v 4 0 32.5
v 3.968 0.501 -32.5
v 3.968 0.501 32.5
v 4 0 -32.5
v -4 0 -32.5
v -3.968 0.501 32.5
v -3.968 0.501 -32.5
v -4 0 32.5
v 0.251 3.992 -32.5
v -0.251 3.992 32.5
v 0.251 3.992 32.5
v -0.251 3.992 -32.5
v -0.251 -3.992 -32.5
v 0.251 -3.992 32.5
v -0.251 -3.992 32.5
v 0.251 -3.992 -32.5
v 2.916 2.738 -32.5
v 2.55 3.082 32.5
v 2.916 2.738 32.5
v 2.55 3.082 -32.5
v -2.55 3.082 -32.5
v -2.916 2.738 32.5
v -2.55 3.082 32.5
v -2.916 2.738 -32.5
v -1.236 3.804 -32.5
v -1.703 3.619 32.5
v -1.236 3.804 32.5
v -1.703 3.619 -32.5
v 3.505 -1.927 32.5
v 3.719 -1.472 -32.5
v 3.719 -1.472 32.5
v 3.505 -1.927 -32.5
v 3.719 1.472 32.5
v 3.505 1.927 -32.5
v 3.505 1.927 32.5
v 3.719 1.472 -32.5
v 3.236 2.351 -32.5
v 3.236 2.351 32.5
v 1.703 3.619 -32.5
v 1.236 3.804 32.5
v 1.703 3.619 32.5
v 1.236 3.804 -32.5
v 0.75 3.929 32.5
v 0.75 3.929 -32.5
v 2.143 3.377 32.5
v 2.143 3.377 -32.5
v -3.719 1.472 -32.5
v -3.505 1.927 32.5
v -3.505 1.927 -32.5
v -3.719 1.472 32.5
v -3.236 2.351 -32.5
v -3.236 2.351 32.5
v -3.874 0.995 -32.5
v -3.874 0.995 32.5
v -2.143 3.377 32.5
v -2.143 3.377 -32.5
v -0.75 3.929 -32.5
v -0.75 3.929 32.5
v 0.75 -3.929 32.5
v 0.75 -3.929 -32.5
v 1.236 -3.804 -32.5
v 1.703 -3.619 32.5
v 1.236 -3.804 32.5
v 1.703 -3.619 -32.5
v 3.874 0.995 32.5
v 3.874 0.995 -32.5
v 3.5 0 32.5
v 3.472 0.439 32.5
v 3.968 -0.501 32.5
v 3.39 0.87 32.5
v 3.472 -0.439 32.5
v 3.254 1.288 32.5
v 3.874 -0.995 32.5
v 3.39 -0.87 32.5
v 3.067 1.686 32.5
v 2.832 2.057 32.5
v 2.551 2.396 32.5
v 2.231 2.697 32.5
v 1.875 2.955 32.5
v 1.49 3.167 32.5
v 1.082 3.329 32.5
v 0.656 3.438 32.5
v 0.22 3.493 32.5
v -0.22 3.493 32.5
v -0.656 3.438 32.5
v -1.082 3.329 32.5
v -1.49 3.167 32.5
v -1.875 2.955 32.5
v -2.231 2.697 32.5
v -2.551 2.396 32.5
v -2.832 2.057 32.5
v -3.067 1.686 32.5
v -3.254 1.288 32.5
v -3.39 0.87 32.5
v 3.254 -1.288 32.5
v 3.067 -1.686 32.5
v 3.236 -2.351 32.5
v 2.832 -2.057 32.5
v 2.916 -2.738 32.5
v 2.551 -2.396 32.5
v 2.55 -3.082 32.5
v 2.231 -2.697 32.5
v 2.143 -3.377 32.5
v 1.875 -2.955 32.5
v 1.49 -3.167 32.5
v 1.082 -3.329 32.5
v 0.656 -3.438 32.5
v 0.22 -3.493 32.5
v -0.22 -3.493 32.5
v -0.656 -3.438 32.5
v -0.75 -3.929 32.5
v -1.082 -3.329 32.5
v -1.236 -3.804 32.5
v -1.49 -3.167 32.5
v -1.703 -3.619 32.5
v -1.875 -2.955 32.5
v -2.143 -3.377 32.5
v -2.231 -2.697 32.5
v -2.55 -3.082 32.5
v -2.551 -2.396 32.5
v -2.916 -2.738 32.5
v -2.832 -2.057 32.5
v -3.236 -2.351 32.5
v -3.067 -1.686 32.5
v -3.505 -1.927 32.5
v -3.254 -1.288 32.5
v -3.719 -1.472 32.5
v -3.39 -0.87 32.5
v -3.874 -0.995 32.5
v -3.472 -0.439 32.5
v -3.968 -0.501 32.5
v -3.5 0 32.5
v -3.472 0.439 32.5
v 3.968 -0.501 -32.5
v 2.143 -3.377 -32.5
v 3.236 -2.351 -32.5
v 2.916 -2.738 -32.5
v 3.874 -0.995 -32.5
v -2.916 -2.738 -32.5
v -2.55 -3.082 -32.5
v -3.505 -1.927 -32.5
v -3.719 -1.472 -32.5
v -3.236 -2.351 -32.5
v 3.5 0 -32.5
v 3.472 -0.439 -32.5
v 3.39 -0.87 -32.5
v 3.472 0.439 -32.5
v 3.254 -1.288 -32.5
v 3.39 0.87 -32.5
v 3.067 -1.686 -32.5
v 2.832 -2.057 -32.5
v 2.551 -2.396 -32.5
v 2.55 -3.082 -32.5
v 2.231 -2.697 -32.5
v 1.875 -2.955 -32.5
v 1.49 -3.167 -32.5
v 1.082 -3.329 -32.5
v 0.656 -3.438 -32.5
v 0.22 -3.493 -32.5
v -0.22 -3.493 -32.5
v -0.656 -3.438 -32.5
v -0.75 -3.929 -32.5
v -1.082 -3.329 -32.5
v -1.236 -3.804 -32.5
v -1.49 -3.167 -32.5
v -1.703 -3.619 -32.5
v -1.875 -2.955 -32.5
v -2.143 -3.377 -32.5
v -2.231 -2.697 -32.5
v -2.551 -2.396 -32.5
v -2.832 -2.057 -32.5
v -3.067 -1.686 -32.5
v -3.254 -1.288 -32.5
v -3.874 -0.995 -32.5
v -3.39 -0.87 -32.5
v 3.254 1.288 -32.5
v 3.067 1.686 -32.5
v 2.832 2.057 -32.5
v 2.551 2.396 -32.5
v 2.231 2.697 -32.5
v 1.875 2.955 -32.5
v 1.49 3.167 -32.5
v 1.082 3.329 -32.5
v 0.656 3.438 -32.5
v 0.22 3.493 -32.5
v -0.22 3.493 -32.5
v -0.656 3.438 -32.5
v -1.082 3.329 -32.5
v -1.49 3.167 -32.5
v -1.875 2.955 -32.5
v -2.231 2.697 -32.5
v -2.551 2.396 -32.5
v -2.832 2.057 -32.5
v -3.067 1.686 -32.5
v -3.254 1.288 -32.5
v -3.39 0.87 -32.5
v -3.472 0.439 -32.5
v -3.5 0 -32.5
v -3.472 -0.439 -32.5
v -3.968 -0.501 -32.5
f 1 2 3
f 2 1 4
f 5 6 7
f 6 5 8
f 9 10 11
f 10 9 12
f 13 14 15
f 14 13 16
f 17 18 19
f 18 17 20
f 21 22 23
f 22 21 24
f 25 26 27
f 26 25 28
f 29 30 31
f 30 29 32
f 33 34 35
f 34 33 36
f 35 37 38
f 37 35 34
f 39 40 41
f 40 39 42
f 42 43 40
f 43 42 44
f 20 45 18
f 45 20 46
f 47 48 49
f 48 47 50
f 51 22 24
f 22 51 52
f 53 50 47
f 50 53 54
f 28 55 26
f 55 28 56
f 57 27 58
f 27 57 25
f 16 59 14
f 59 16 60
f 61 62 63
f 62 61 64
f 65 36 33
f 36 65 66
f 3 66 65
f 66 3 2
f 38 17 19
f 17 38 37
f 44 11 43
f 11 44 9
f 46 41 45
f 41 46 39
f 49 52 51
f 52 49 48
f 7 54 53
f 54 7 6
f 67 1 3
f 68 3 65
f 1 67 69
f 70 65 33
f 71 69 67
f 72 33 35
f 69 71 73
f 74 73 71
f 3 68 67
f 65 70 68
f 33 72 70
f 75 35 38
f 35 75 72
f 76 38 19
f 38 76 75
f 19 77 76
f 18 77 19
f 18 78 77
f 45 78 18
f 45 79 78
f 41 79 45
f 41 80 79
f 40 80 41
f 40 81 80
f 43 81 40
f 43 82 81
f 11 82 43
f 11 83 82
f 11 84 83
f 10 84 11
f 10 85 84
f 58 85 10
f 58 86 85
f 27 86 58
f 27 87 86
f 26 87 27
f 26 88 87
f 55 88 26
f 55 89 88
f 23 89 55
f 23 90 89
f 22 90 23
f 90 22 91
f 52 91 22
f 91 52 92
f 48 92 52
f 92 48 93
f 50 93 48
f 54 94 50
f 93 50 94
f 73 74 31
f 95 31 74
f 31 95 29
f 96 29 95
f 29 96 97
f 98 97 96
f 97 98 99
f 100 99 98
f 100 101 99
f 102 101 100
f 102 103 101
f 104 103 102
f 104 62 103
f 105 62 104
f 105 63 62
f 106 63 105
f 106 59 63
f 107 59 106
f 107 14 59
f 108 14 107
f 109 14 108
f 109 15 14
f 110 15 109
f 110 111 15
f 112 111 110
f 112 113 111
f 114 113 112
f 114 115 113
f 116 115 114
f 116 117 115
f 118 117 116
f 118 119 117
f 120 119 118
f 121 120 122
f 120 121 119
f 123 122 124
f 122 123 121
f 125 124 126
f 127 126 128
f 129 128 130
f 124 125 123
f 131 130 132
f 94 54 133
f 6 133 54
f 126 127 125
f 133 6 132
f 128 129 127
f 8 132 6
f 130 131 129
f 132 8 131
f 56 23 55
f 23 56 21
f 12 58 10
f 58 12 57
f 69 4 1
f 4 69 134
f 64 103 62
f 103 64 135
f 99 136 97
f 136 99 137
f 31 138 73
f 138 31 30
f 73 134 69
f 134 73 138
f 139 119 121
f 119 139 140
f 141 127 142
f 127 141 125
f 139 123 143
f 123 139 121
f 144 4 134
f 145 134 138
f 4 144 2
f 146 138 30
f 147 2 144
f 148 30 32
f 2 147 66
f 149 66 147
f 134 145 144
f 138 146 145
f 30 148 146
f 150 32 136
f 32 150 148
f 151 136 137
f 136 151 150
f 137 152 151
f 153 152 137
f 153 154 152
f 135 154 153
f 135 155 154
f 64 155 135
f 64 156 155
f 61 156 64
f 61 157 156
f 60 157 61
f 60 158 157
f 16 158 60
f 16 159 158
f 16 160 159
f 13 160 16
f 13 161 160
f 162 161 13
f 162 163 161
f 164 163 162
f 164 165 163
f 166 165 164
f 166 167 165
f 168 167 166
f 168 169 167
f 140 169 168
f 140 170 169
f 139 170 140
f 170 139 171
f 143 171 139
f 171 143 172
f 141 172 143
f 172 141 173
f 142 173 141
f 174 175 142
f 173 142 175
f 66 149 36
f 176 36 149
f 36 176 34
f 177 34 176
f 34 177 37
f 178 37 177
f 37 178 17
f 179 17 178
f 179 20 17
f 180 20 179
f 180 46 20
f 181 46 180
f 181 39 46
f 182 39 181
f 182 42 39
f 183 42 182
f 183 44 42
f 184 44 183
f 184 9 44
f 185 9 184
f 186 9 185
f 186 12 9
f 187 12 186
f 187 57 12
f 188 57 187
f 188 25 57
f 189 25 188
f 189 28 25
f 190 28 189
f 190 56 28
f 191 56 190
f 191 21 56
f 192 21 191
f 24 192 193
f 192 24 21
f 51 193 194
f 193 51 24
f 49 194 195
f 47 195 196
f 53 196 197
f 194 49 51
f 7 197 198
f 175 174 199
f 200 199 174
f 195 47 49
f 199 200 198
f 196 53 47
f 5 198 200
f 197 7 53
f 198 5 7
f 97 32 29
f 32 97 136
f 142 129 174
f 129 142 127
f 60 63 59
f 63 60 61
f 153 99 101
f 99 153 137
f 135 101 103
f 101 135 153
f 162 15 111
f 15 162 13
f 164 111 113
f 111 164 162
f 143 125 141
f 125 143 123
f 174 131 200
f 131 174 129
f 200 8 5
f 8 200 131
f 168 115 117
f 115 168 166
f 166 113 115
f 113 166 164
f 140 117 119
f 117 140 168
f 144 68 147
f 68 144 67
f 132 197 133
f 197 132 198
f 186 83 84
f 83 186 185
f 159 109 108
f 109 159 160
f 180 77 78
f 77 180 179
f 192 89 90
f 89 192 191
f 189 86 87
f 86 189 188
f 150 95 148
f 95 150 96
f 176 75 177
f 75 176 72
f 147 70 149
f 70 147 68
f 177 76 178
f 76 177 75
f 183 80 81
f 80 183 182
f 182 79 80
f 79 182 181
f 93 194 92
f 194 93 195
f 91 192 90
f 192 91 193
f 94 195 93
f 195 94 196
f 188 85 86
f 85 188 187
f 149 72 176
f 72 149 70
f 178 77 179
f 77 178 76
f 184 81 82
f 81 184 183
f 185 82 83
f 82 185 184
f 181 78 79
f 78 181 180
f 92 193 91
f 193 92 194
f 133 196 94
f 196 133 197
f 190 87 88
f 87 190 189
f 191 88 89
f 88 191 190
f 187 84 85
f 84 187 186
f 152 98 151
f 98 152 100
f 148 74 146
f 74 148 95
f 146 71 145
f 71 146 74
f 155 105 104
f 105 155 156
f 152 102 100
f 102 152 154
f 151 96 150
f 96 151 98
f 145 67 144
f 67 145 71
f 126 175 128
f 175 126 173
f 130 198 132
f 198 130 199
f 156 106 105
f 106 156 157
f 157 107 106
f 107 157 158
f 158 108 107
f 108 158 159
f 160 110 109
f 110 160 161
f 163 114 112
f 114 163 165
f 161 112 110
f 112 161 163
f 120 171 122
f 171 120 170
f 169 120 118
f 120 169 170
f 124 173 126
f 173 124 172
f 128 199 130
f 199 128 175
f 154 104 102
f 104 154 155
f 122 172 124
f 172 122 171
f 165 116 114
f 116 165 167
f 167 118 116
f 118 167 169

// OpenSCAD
$fn = 50;


difference() {
	union() {
		translate(v = [0, 0, -32.5000000000]) {
			cylinder(h = 65, r = 4.0000000000);
		}
	}
	union() {
		translate(v = [0, 0, -100.0000000000]) {
			cylinder(h = 200, r = 3.5000000000);
		}
	}
}
